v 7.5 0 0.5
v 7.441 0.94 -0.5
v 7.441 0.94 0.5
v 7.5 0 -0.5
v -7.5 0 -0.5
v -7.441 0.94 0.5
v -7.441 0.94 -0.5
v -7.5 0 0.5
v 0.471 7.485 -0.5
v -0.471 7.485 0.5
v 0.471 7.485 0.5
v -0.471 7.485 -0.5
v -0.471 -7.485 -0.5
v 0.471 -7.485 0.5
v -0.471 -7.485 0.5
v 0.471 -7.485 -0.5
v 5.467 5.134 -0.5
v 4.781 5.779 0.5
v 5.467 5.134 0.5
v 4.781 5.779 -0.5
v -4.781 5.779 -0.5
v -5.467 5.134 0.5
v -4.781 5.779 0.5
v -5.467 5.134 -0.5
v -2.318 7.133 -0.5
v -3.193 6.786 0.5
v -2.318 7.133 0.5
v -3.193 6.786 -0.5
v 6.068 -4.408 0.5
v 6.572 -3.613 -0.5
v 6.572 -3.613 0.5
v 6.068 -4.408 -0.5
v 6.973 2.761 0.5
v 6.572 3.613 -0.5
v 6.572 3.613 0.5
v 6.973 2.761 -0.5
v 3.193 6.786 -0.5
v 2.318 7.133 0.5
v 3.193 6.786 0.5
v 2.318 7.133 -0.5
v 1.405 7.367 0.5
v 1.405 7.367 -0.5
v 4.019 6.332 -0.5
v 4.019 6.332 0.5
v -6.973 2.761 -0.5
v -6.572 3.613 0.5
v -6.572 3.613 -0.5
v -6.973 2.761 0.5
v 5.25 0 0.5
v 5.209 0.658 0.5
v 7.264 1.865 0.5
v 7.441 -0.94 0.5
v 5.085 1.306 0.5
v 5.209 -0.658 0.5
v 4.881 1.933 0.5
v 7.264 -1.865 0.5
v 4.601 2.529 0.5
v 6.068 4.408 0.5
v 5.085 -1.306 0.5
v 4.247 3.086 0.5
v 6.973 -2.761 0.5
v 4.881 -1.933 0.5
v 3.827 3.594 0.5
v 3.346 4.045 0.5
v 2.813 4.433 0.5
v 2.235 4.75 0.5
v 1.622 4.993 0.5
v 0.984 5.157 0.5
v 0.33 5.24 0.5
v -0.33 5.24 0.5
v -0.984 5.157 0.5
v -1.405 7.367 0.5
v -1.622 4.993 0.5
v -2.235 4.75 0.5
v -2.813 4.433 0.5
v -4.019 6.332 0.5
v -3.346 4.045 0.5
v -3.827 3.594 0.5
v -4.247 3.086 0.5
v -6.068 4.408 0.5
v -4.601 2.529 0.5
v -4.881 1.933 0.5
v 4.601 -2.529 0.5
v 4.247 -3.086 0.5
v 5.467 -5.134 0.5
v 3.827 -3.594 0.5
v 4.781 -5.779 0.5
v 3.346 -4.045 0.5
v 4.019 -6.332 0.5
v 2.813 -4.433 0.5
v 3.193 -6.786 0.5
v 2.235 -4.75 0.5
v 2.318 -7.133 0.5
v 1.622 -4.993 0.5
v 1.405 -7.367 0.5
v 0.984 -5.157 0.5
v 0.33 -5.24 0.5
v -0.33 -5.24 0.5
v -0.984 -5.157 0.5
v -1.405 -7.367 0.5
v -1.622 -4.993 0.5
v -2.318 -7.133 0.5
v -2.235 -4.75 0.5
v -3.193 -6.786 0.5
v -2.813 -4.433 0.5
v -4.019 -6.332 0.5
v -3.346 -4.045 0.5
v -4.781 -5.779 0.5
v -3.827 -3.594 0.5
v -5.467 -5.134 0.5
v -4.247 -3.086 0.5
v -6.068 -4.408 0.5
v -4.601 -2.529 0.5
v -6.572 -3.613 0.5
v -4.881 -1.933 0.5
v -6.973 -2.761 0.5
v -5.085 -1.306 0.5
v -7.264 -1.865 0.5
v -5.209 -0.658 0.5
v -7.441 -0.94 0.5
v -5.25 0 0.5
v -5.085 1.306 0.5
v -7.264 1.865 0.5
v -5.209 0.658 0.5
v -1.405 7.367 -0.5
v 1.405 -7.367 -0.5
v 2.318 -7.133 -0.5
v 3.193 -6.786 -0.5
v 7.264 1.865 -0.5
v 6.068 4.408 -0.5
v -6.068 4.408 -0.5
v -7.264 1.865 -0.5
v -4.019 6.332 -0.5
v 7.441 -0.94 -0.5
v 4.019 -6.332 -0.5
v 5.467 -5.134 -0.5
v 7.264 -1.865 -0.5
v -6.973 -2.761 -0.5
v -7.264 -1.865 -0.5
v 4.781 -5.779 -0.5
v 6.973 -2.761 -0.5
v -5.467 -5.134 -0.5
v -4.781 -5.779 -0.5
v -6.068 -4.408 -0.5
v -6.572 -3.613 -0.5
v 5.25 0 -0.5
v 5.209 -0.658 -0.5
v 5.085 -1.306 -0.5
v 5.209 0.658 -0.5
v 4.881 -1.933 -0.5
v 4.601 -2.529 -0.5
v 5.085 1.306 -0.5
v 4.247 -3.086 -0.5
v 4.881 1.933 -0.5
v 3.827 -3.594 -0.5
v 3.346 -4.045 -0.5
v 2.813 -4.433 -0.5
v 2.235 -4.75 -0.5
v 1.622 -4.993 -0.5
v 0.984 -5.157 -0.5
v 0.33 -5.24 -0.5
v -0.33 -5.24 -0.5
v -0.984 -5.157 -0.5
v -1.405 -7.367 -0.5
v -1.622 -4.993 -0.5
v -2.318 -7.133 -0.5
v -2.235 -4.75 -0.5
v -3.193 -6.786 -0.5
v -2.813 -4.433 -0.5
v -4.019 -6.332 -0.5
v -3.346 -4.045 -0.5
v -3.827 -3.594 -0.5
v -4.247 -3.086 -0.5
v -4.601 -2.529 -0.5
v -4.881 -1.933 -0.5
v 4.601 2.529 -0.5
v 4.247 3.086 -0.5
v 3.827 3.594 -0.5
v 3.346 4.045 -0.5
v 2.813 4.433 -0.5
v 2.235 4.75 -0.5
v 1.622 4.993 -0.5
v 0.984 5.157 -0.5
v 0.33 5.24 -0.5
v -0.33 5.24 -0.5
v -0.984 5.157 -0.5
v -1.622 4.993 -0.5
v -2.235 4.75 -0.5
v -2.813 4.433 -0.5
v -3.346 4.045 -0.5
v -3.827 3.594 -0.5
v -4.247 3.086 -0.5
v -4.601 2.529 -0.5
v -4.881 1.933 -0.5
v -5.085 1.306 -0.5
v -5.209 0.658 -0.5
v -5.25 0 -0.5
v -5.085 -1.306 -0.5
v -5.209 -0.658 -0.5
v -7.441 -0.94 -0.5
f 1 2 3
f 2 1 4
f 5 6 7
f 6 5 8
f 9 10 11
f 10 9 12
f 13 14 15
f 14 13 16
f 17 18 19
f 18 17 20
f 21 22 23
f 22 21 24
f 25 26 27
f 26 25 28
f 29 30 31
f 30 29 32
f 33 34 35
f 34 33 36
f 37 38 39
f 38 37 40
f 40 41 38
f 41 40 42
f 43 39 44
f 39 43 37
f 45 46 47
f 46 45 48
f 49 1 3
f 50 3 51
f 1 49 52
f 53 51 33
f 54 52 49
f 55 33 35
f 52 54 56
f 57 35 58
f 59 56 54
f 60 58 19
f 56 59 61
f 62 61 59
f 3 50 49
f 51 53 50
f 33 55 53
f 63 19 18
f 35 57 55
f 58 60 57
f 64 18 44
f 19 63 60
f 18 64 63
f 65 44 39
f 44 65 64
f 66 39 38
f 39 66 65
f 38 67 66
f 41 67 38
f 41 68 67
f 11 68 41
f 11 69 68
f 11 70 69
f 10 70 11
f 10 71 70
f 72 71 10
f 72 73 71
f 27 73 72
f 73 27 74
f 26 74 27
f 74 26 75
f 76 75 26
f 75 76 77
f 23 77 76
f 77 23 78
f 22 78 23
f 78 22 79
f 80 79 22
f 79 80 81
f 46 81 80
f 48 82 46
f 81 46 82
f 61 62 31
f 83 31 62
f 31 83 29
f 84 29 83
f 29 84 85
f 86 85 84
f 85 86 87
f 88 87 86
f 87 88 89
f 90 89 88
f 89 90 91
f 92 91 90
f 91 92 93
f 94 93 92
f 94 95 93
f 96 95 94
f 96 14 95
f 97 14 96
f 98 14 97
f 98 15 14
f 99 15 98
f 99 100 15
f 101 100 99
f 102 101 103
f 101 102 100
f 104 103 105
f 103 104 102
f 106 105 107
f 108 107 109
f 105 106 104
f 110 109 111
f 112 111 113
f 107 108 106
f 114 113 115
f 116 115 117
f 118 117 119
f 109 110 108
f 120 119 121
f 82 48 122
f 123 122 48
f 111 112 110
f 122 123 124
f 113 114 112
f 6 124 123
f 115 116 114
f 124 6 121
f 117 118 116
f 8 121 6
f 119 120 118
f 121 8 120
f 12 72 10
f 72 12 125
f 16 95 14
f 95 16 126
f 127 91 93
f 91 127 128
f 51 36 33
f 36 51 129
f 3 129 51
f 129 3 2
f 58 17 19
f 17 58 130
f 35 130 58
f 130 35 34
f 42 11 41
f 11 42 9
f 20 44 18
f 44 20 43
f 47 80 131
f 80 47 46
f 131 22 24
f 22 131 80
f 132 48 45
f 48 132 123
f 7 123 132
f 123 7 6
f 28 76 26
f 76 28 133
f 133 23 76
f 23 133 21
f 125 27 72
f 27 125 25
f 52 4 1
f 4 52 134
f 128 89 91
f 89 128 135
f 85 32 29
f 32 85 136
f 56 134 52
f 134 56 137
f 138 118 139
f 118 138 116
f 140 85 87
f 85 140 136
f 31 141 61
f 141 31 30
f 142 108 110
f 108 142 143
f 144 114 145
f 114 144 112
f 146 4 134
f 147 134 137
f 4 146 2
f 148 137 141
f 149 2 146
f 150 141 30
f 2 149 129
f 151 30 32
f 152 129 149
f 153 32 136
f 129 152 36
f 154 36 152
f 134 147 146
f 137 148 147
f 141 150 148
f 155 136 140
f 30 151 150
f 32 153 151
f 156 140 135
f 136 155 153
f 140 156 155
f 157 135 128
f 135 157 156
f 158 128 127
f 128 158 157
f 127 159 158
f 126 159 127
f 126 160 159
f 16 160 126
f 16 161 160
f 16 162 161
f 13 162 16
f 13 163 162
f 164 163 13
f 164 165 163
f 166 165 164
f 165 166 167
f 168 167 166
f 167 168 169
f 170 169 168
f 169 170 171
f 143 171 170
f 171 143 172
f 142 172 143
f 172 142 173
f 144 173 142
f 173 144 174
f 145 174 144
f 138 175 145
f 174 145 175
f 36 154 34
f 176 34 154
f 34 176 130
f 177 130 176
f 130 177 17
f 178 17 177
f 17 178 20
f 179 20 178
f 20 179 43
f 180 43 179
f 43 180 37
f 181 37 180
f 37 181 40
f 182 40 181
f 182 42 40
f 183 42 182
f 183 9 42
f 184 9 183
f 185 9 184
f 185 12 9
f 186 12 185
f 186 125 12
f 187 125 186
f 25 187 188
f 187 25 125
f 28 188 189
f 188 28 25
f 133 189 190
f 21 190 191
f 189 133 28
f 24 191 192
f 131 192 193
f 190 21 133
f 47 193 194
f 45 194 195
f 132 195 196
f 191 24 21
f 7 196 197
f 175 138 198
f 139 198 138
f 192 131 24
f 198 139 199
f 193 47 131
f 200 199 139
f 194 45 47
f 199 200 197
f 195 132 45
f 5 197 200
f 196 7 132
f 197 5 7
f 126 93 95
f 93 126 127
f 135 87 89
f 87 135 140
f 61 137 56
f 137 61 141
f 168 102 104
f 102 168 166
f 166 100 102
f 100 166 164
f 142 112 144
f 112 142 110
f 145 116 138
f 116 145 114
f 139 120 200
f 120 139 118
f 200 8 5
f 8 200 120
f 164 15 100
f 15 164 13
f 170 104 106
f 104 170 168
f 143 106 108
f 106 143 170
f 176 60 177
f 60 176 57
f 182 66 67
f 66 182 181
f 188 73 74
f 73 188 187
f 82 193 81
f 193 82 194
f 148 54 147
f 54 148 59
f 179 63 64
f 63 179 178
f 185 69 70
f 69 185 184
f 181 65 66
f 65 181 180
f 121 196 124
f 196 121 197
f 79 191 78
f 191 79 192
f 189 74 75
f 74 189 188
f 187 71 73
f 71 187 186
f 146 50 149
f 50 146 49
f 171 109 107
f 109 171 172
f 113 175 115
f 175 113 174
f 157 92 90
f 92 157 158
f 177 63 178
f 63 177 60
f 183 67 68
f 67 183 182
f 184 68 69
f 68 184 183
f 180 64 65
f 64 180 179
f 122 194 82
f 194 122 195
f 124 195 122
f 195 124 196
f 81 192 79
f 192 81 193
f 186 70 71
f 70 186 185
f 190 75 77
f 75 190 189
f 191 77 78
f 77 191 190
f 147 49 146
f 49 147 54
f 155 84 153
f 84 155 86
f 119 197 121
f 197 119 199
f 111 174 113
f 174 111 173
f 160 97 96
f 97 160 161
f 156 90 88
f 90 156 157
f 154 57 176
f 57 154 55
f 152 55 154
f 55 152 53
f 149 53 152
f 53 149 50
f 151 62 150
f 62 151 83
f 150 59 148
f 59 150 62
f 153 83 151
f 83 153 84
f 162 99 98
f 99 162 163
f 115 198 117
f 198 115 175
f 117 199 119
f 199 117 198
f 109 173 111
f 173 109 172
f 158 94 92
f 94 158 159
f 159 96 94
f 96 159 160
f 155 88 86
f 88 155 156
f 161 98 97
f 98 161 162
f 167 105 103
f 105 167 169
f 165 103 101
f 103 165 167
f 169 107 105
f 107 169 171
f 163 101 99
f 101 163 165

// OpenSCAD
$fn = 50;


difference() {
	union() {
		translate(v = [0, 0, -0.5000000000]) {
			cylinder(h = 1, r = 7.5000000000);
		}
	}
	union() {
		translate(v = [0, 0, -100.0000000000]) {
			cylinder(h = 200, r = 5.2500000000);
		}
	}
}
